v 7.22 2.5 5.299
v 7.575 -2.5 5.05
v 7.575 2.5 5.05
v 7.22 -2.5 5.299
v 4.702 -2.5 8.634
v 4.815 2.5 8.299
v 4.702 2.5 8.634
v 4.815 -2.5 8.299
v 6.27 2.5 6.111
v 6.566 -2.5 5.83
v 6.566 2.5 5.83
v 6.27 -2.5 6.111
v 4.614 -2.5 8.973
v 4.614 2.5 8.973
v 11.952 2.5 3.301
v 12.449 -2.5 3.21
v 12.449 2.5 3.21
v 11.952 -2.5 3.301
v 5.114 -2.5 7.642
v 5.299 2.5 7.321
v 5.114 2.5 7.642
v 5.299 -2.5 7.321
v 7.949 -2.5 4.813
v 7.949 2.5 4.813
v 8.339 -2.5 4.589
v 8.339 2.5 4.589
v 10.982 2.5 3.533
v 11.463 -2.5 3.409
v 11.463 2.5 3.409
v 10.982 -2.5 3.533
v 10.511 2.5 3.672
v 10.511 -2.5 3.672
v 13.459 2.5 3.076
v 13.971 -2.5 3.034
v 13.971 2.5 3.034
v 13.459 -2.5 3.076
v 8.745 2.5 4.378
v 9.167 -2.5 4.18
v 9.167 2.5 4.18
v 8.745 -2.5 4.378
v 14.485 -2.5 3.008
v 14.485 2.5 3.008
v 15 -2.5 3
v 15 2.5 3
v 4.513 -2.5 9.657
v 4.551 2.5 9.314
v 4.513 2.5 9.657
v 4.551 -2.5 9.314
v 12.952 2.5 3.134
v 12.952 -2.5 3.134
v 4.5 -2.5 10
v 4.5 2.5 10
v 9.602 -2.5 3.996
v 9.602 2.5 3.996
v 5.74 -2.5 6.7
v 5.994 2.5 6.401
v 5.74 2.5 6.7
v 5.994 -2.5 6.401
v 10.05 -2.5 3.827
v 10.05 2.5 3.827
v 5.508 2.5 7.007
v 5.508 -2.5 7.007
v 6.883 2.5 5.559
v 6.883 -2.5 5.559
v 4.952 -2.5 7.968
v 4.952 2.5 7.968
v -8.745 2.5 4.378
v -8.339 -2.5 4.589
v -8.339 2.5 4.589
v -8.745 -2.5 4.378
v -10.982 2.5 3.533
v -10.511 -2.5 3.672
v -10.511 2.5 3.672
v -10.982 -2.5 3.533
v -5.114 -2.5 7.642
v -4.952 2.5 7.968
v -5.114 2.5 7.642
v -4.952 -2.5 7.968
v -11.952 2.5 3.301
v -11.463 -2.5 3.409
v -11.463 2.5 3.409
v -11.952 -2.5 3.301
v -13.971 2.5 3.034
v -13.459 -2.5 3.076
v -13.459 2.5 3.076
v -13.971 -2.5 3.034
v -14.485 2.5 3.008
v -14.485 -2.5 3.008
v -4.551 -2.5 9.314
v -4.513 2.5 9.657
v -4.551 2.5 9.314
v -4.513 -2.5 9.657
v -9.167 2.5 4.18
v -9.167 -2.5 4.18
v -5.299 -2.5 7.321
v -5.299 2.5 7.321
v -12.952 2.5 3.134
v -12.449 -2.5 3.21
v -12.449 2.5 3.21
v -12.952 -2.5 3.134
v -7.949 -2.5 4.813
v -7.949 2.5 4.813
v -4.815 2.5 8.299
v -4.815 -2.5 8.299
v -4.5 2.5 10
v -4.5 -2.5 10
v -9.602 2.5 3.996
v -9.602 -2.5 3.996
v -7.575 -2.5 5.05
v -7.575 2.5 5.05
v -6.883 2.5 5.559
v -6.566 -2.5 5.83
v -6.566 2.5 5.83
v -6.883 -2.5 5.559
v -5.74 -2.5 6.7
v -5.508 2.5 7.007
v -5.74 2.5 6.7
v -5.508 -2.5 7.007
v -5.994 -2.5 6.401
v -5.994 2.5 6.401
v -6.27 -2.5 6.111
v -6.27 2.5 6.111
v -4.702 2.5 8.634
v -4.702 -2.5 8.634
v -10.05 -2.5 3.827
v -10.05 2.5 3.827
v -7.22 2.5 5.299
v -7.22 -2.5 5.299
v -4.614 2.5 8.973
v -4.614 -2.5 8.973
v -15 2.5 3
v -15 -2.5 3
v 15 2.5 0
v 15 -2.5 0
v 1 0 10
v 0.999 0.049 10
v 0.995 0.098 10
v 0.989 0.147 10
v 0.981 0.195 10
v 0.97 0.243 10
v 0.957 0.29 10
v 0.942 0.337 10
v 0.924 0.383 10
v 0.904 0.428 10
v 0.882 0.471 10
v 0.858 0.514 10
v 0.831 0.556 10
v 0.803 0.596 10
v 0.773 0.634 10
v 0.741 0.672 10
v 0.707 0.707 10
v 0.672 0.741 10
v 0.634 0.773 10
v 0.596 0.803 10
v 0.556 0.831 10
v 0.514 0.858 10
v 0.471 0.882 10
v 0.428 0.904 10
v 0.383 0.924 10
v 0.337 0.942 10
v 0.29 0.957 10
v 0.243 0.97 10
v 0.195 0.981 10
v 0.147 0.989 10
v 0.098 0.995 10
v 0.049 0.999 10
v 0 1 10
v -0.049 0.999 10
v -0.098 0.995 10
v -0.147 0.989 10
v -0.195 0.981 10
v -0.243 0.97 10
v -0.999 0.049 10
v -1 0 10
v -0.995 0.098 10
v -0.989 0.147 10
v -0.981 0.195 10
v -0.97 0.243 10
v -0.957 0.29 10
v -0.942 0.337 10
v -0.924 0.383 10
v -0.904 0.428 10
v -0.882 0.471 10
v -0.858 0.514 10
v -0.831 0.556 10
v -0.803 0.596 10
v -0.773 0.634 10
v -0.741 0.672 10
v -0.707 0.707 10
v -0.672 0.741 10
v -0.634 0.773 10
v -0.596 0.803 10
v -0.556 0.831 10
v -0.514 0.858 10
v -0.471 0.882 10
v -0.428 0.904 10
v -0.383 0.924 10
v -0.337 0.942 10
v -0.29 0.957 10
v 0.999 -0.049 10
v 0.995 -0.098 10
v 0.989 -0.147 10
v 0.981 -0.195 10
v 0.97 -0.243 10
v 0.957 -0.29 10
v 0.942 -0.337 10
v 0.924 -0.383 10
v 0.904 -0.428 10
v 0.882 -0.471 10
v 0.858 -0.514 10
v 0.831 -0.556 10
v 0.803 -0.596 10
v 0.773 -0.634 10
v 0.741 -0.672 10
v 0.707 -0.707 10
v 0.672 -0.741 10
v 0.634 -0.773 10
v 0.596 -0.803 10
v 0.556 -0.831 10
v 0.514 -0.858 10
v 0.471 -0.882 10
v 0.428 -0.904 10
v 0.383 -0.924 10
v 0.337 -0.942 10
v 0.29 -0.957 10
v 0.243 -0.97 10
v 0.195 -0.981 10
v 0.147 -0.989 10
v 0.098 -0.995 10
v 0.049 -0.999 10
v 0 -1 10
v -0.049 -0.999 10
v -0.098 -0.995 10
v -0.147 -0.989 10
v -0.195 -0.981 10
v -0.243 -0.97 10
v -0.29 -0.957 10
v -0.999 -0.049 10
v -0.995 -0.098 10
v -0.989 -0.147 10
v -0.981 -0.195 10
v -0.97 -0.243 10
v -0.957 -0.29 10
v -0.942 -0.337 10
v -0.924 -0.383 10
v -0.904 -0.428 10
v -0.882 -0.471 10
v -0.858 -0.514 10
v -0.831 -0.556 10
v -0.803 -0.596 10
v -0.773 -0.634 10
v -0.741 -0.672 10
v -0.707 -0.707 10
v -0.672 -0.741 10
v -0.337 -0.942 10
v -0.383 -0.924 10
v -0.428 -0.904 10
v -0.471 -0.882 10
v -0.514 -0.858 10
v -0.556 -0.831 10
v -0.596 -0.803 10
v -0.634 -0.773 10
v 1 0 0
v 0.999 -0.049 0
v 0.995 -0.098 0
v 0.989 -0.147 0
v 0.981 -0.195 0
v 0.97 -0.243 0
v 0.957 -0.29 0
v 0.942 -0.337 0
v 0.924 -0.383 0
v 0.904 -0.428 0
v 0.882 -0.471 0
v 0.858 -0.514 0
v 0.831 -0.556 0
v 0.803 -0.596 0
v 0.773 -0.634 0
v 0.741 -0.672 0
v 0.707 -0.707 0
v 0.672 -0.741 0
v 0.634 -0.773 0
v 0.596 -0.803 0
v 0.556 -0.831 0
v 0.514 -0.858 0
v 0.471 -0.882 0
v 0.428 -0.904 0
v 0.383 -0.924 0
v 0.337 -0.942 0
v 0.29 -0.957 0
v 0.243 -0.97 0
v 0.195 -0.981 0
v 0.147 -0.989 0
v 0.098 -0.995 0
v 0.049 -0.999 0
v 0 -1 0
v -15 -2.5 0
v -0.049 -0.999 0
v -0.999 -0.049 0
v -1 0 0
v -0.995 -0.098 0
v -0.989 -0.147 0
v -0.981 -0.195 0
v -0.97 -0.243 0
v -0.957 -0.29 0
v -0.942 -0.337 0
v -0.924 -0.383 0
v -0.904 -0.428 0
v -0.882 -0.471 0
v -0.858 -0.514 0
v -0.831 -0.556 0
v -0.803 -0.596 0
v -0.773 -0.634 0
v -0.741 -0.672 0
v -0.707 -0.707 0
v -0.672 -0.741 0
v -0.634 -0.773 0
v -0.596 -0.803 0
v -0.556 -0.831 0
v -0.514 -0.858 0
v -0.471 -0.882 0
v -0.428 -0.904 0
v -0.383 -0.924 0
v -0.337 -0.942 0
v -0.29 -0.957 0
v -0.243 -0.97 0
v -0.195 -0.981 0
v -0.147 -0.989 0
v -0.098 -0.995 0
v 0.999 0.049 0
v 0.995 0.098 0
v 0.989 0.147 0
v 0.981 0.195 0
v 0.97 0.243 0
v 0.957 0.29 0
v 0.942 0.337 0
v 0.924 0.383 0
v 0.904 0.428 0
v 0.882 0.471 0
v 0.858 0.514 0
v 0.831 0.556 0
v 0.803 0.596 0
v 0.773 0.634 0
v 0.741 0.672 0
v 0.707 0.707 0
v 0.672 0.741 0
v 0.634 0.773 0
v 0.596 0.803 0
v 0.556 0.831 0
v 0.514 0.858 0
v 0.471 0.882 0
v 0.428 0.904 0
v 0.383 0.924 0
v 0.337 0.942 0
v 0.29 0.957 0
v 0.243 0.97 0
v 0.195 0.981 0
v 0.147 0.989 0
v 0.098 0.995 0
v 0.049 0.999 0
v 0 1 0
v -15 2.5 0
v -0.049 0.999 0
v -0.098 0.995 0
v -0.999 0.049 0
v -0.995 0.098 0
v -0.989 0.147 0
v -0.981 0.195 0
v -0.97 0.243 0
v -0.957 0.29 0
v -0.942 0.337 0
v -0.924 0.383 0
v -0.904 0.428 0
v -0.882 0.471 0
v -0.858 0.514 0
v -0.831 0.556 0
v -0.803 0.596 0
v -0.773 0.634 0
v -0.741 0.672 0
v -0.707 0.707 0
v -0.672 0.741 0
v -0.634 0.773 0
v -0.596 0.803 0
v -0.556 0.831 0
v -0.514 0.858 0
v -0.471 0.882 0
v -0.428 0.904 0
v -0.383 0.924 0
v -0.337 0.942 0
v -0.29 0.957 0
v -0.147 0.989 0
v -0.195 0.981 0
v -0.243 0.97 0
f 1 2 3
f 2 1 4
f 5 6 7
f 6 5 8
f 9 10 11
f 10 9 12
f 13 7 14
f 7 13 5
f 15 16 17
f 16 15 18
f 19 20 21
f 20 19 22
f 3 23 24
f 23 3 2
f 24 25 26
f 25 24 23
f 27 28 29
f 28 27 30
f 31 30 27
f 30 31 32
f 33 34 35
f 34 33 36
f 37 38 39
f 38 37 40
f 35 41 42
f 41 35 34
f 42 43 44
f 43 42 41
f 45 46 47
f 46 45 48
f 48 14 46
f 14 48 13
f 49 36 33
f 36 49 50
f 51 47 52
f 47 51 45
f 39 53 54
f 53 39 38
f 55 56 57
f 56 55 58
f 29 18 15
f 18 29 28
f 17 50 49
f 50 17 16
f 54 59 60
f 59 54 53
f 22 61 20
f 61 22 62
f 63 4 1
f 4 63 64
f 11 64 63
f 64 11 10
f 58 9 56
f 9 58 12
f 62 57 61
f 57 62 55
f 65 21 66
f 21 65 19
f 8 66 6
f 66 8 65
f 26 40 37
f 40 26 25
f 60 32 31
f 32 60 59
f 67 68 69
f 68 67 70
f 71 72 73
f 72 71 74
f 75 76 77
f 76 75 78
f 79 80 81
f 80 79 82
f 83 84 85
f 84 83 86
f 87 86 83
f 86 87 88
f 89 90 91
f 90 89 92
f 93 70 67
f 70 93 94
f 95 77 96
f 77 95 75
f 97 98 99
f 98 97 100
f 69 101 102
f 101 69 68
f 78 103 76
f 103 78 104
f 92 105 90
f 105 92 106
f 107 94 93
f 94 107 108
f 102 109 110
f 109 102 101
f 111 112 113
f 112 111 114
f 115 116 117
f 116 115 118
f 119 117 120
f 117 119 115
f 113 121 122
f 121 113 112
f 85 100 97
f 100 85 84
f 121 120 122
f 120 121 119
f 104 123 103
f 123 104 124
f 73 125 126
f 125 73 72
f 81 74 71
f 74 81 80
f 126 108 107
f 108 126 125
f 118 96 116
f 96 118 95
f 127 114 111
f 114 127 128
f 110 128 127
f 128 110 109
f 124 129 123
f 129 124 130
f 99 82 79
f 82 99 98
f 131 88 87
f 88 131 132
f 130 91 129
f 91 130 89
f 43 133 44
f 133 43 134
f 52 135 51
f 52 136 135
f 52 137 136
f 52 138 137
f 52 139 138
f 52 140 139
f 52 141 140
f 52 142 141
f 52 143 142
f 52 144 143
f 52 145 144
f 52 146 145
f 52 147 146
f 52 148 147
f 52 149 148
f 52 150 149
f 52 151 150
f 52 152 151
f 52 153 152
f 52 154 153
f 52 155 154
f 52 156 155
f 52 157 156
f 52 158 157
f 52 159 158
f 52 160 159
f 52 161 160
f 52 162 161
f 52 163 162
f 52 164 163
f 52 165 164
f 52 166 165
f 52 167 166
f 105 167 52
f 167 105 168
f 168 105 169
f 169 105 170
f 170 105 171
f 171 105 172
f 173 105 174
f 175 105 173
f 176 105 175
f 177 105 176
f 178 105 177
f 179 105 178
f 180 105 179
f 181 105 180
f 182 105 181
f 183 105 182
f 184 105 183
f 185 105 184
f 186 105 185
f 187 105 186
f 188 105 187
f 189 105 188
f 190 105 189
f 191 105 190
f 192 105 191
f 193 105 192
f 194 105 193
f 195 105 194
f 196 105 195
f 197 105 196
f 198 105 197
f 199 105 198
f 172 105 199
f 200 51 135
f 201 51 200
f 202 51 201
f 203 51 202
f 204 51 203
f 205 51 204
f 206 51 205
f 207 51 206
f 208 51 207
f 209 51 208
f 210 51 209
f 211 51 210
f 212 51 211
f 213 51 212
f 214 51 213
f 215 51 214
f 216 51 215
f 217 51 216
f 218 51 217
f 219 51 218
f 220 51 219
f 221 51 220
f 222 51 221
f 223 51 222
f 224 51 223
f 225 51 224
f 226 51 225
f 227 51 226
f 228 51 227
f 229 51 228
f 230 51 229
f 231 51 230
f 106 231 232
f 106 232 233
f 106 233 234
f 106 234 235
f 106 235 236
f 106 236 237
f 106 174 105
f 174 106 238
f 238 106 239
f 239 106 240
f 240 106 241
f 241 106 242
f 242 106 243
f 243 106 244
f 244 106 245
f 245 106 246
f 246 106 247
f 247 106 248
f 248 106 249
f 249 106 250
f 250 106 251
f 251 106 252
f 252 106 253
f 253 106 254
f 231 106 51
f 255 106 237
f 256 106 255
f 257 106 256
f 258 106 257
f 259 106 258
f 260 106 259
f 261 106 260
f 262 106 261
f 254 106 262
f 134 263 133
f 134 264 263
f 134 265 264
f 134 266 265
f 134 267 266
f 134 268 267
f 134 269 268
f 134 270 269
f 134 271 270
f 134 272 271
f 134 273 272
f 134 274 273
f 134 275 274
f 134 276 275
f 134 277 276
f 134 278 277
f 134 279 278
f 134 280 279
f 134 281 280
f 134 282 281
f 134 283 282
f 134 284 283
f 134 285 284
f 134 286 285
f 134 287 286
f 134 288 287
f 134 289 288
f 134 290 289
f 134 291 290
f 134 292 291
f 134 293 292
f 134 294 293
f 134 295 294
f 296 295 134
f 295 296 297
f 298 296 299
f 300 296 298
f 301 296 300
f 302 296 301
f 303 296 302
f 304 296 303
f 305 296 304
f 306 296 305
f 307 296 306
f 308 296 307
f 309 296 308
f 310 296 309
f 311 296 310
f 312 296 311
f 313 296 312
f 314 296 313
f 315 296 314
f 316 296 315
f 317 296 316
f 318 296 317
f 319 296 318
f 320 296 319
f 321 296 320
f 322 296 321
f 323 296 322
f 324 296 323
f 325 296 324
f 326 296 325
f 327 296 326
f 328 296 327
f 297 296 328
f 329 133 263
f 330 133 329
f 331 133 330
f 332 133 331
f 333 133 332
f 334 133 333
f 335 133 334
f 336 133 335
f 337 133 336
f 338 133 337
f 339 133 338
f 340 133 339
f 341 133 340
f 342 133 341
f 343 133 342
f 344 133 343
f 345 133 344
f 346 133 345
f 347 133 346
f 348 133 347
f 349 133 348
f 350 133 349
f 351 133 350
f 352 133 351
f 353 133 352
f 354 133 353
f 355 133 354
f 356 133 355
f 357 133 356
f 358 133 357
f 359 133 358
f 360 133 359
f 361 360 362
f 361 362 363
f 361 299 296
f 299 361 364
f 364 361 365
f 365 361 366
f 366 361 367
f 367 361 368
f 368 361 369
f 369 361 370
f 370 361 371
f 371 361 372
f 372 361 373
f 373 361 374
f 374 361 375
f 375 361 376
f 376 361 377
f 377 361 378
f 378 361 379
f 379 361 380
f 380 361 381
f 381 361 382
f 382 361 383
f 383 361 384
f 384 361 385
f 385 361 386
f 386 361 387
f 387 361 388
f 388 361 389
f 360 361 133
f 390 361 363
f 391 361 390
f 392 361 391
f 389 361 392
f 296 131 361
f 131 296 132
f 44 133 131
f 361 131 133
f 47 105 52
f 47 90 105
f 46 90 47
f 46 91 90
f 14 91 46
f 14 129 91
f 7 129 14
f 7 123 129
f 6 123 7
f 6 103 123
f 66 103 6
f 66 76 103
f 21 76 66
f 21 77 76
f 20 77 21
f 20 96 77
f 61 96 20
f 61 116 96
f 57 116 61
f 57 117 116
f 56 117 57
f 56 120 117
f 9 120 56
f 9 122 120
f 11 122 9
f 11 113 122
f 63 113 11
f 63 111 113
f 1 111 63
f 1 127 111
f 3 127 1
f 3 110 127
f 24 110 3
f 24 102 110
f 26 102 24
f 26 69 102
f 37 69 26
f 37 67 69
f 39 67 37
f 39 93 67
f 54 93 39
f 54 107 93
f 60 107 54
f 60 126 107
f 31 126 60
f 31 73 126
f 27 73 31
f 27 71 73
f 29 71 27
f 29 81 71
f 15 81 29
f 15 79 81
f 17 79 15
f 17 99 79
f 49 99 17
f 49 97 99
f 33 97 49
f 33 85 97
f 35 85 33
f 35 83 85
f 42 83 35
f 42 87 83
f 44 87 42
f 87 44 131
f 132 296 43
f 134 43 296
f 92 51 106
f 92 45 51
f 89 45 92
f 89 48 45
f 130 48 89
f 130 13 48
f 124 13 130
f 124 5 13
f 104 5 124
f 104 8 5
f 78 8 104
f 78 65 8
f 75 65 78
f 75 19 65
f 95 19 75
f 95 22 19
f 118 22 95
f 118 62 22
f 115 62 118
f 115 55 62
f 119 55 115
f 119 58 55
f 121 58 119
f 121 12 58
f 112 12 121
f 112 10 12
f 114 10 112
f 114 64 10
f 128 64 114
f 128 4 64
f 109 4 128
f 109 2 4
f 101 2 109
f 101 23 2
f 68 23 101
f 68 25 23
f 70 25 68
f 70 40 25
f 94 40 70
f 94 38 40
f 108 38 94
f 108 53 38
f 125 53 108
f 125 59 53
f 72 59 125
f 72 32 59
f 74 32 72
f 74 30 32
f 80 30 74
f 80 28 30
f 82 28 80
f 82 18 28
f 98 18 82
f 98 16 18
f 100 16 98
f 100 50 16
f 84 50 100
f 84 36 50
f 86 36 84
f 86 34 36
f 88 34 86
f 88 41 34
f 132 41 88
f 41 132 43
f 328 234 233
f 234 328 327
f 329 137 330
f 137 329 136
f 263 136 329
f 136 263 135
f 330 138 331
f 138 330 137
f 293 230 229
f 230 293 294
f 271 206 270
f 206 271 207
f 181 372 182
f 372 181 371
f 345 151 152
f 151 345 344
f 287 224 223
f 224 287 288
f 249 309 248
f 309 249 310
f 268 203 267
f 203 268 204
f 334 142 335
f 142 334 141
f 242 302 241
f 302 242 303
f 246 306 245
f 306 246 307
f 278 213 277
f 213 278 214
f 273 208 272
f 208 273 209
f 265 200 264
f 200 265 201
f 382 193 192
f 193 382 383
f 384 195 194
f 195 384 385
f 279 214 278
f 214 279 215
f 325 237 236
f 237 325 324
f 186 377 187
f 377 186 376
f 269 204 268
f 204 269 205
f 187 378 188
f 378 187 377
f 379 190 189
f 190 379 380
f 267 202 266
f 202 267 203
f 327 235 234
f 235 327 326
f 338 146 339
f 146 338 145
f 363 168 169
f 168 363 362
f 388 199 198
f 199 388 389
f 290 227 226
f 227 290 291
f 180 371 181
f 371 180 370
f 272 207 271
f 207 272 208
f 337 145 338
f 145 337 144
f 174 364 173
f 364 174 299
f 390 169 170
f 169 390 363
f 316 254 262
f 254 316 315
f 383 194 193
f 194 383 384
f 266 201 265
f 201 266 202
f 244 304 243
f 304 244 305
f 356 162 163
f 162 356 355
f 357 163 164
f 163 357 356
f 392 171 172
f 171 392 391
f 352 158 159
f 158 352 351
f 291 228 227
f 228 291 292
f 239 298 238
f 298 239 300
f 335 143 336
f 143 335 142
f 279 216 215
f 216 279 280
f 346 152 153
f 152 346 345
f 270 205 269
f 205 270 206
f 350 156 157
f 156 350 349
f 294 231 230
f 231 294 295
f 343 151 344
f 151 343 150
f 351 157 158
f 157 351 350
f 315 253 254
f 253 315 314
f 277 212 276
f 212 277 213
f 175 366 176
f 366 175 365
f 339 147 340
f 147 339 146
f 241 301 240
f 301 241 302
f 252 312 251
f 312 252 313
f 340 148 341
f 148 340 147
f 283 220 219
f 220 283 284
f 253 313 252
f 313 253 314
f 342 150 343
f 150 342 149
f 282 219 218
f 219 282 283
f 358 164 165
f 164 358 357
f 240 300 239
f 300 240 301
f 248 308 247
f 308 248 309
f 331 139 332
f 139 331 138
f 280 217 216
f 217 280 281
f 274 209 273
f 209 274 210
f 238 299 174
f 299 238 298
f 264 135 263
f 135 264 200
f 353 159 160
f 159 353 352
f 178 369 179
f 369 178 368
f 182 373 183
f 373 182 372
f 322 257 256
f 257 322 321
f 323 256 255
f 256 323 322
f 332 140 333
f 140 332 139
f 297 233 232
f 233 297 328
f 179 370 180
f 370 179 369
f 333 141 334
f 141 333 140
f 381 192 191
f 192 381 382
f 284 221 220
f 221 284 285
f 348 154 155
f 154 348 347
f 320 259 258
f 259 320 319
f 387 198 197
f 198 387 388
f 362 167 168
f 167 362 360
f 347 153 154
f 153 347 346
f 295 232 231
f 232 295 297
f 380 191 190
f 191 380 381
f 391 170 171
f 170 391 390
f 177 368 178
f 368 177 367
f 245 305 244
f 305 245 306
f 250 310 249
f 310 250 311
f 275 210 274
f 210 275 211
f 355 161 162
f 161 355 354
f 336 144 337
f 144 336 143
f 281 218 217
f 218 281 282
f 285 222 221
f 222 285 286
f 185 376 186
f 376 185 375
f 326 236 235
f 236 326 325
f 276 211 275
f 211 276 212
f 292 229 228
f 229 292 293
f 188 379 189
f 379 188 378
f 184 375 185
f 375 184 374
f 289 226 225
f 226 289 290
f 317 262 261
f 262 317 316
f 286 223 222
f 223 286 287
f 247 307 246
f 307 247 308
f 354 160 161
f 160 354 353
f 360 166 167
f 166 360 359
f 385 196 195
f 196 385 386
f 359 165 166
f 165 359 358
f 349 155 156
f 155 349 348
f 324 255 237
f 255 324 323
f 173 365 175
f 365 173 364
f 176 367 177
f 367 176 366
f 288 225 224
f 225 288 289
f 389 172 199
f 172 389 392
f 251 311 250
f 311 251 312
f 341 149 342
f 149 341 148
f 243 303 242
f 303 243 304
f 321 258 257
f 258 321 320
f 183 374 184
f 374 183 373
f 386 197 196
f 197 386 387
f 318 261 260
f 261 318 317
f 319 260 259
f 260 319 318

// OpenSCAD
$fn = 128;
difference() {
    translate([0,0,5])
    cube([30,5,10], center = true);
    translate([0,0,-0.01])
    cylinder(r=1, h = 11);

    for(i = [0:1:1])
        mirror([i,0,0])
        translate([15,5,10])
        scale([1.5,1,1])
        rotate([90,0,0])
        cylinder(r=7, h=10);
}
